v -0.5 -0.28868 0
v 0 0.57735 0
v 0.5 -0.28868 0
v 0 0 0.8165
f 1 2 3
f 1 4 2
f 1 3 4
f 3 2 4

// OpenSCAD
module Tetrahedron () {
polyhedron (
points = [
[-0.5, -0.288675134595, 0.0],
[0.5, -0.288675134595, 0.0],
[0.0, 0.57735026919, 0.0],
[0.0, 0.0, 0.816496580928],
],
faces = [
[0, 2, 1],
[0, 3, 2],
[0, 1, 3],
[1, 2, 3],
]);
}

Tetrahedron ();
